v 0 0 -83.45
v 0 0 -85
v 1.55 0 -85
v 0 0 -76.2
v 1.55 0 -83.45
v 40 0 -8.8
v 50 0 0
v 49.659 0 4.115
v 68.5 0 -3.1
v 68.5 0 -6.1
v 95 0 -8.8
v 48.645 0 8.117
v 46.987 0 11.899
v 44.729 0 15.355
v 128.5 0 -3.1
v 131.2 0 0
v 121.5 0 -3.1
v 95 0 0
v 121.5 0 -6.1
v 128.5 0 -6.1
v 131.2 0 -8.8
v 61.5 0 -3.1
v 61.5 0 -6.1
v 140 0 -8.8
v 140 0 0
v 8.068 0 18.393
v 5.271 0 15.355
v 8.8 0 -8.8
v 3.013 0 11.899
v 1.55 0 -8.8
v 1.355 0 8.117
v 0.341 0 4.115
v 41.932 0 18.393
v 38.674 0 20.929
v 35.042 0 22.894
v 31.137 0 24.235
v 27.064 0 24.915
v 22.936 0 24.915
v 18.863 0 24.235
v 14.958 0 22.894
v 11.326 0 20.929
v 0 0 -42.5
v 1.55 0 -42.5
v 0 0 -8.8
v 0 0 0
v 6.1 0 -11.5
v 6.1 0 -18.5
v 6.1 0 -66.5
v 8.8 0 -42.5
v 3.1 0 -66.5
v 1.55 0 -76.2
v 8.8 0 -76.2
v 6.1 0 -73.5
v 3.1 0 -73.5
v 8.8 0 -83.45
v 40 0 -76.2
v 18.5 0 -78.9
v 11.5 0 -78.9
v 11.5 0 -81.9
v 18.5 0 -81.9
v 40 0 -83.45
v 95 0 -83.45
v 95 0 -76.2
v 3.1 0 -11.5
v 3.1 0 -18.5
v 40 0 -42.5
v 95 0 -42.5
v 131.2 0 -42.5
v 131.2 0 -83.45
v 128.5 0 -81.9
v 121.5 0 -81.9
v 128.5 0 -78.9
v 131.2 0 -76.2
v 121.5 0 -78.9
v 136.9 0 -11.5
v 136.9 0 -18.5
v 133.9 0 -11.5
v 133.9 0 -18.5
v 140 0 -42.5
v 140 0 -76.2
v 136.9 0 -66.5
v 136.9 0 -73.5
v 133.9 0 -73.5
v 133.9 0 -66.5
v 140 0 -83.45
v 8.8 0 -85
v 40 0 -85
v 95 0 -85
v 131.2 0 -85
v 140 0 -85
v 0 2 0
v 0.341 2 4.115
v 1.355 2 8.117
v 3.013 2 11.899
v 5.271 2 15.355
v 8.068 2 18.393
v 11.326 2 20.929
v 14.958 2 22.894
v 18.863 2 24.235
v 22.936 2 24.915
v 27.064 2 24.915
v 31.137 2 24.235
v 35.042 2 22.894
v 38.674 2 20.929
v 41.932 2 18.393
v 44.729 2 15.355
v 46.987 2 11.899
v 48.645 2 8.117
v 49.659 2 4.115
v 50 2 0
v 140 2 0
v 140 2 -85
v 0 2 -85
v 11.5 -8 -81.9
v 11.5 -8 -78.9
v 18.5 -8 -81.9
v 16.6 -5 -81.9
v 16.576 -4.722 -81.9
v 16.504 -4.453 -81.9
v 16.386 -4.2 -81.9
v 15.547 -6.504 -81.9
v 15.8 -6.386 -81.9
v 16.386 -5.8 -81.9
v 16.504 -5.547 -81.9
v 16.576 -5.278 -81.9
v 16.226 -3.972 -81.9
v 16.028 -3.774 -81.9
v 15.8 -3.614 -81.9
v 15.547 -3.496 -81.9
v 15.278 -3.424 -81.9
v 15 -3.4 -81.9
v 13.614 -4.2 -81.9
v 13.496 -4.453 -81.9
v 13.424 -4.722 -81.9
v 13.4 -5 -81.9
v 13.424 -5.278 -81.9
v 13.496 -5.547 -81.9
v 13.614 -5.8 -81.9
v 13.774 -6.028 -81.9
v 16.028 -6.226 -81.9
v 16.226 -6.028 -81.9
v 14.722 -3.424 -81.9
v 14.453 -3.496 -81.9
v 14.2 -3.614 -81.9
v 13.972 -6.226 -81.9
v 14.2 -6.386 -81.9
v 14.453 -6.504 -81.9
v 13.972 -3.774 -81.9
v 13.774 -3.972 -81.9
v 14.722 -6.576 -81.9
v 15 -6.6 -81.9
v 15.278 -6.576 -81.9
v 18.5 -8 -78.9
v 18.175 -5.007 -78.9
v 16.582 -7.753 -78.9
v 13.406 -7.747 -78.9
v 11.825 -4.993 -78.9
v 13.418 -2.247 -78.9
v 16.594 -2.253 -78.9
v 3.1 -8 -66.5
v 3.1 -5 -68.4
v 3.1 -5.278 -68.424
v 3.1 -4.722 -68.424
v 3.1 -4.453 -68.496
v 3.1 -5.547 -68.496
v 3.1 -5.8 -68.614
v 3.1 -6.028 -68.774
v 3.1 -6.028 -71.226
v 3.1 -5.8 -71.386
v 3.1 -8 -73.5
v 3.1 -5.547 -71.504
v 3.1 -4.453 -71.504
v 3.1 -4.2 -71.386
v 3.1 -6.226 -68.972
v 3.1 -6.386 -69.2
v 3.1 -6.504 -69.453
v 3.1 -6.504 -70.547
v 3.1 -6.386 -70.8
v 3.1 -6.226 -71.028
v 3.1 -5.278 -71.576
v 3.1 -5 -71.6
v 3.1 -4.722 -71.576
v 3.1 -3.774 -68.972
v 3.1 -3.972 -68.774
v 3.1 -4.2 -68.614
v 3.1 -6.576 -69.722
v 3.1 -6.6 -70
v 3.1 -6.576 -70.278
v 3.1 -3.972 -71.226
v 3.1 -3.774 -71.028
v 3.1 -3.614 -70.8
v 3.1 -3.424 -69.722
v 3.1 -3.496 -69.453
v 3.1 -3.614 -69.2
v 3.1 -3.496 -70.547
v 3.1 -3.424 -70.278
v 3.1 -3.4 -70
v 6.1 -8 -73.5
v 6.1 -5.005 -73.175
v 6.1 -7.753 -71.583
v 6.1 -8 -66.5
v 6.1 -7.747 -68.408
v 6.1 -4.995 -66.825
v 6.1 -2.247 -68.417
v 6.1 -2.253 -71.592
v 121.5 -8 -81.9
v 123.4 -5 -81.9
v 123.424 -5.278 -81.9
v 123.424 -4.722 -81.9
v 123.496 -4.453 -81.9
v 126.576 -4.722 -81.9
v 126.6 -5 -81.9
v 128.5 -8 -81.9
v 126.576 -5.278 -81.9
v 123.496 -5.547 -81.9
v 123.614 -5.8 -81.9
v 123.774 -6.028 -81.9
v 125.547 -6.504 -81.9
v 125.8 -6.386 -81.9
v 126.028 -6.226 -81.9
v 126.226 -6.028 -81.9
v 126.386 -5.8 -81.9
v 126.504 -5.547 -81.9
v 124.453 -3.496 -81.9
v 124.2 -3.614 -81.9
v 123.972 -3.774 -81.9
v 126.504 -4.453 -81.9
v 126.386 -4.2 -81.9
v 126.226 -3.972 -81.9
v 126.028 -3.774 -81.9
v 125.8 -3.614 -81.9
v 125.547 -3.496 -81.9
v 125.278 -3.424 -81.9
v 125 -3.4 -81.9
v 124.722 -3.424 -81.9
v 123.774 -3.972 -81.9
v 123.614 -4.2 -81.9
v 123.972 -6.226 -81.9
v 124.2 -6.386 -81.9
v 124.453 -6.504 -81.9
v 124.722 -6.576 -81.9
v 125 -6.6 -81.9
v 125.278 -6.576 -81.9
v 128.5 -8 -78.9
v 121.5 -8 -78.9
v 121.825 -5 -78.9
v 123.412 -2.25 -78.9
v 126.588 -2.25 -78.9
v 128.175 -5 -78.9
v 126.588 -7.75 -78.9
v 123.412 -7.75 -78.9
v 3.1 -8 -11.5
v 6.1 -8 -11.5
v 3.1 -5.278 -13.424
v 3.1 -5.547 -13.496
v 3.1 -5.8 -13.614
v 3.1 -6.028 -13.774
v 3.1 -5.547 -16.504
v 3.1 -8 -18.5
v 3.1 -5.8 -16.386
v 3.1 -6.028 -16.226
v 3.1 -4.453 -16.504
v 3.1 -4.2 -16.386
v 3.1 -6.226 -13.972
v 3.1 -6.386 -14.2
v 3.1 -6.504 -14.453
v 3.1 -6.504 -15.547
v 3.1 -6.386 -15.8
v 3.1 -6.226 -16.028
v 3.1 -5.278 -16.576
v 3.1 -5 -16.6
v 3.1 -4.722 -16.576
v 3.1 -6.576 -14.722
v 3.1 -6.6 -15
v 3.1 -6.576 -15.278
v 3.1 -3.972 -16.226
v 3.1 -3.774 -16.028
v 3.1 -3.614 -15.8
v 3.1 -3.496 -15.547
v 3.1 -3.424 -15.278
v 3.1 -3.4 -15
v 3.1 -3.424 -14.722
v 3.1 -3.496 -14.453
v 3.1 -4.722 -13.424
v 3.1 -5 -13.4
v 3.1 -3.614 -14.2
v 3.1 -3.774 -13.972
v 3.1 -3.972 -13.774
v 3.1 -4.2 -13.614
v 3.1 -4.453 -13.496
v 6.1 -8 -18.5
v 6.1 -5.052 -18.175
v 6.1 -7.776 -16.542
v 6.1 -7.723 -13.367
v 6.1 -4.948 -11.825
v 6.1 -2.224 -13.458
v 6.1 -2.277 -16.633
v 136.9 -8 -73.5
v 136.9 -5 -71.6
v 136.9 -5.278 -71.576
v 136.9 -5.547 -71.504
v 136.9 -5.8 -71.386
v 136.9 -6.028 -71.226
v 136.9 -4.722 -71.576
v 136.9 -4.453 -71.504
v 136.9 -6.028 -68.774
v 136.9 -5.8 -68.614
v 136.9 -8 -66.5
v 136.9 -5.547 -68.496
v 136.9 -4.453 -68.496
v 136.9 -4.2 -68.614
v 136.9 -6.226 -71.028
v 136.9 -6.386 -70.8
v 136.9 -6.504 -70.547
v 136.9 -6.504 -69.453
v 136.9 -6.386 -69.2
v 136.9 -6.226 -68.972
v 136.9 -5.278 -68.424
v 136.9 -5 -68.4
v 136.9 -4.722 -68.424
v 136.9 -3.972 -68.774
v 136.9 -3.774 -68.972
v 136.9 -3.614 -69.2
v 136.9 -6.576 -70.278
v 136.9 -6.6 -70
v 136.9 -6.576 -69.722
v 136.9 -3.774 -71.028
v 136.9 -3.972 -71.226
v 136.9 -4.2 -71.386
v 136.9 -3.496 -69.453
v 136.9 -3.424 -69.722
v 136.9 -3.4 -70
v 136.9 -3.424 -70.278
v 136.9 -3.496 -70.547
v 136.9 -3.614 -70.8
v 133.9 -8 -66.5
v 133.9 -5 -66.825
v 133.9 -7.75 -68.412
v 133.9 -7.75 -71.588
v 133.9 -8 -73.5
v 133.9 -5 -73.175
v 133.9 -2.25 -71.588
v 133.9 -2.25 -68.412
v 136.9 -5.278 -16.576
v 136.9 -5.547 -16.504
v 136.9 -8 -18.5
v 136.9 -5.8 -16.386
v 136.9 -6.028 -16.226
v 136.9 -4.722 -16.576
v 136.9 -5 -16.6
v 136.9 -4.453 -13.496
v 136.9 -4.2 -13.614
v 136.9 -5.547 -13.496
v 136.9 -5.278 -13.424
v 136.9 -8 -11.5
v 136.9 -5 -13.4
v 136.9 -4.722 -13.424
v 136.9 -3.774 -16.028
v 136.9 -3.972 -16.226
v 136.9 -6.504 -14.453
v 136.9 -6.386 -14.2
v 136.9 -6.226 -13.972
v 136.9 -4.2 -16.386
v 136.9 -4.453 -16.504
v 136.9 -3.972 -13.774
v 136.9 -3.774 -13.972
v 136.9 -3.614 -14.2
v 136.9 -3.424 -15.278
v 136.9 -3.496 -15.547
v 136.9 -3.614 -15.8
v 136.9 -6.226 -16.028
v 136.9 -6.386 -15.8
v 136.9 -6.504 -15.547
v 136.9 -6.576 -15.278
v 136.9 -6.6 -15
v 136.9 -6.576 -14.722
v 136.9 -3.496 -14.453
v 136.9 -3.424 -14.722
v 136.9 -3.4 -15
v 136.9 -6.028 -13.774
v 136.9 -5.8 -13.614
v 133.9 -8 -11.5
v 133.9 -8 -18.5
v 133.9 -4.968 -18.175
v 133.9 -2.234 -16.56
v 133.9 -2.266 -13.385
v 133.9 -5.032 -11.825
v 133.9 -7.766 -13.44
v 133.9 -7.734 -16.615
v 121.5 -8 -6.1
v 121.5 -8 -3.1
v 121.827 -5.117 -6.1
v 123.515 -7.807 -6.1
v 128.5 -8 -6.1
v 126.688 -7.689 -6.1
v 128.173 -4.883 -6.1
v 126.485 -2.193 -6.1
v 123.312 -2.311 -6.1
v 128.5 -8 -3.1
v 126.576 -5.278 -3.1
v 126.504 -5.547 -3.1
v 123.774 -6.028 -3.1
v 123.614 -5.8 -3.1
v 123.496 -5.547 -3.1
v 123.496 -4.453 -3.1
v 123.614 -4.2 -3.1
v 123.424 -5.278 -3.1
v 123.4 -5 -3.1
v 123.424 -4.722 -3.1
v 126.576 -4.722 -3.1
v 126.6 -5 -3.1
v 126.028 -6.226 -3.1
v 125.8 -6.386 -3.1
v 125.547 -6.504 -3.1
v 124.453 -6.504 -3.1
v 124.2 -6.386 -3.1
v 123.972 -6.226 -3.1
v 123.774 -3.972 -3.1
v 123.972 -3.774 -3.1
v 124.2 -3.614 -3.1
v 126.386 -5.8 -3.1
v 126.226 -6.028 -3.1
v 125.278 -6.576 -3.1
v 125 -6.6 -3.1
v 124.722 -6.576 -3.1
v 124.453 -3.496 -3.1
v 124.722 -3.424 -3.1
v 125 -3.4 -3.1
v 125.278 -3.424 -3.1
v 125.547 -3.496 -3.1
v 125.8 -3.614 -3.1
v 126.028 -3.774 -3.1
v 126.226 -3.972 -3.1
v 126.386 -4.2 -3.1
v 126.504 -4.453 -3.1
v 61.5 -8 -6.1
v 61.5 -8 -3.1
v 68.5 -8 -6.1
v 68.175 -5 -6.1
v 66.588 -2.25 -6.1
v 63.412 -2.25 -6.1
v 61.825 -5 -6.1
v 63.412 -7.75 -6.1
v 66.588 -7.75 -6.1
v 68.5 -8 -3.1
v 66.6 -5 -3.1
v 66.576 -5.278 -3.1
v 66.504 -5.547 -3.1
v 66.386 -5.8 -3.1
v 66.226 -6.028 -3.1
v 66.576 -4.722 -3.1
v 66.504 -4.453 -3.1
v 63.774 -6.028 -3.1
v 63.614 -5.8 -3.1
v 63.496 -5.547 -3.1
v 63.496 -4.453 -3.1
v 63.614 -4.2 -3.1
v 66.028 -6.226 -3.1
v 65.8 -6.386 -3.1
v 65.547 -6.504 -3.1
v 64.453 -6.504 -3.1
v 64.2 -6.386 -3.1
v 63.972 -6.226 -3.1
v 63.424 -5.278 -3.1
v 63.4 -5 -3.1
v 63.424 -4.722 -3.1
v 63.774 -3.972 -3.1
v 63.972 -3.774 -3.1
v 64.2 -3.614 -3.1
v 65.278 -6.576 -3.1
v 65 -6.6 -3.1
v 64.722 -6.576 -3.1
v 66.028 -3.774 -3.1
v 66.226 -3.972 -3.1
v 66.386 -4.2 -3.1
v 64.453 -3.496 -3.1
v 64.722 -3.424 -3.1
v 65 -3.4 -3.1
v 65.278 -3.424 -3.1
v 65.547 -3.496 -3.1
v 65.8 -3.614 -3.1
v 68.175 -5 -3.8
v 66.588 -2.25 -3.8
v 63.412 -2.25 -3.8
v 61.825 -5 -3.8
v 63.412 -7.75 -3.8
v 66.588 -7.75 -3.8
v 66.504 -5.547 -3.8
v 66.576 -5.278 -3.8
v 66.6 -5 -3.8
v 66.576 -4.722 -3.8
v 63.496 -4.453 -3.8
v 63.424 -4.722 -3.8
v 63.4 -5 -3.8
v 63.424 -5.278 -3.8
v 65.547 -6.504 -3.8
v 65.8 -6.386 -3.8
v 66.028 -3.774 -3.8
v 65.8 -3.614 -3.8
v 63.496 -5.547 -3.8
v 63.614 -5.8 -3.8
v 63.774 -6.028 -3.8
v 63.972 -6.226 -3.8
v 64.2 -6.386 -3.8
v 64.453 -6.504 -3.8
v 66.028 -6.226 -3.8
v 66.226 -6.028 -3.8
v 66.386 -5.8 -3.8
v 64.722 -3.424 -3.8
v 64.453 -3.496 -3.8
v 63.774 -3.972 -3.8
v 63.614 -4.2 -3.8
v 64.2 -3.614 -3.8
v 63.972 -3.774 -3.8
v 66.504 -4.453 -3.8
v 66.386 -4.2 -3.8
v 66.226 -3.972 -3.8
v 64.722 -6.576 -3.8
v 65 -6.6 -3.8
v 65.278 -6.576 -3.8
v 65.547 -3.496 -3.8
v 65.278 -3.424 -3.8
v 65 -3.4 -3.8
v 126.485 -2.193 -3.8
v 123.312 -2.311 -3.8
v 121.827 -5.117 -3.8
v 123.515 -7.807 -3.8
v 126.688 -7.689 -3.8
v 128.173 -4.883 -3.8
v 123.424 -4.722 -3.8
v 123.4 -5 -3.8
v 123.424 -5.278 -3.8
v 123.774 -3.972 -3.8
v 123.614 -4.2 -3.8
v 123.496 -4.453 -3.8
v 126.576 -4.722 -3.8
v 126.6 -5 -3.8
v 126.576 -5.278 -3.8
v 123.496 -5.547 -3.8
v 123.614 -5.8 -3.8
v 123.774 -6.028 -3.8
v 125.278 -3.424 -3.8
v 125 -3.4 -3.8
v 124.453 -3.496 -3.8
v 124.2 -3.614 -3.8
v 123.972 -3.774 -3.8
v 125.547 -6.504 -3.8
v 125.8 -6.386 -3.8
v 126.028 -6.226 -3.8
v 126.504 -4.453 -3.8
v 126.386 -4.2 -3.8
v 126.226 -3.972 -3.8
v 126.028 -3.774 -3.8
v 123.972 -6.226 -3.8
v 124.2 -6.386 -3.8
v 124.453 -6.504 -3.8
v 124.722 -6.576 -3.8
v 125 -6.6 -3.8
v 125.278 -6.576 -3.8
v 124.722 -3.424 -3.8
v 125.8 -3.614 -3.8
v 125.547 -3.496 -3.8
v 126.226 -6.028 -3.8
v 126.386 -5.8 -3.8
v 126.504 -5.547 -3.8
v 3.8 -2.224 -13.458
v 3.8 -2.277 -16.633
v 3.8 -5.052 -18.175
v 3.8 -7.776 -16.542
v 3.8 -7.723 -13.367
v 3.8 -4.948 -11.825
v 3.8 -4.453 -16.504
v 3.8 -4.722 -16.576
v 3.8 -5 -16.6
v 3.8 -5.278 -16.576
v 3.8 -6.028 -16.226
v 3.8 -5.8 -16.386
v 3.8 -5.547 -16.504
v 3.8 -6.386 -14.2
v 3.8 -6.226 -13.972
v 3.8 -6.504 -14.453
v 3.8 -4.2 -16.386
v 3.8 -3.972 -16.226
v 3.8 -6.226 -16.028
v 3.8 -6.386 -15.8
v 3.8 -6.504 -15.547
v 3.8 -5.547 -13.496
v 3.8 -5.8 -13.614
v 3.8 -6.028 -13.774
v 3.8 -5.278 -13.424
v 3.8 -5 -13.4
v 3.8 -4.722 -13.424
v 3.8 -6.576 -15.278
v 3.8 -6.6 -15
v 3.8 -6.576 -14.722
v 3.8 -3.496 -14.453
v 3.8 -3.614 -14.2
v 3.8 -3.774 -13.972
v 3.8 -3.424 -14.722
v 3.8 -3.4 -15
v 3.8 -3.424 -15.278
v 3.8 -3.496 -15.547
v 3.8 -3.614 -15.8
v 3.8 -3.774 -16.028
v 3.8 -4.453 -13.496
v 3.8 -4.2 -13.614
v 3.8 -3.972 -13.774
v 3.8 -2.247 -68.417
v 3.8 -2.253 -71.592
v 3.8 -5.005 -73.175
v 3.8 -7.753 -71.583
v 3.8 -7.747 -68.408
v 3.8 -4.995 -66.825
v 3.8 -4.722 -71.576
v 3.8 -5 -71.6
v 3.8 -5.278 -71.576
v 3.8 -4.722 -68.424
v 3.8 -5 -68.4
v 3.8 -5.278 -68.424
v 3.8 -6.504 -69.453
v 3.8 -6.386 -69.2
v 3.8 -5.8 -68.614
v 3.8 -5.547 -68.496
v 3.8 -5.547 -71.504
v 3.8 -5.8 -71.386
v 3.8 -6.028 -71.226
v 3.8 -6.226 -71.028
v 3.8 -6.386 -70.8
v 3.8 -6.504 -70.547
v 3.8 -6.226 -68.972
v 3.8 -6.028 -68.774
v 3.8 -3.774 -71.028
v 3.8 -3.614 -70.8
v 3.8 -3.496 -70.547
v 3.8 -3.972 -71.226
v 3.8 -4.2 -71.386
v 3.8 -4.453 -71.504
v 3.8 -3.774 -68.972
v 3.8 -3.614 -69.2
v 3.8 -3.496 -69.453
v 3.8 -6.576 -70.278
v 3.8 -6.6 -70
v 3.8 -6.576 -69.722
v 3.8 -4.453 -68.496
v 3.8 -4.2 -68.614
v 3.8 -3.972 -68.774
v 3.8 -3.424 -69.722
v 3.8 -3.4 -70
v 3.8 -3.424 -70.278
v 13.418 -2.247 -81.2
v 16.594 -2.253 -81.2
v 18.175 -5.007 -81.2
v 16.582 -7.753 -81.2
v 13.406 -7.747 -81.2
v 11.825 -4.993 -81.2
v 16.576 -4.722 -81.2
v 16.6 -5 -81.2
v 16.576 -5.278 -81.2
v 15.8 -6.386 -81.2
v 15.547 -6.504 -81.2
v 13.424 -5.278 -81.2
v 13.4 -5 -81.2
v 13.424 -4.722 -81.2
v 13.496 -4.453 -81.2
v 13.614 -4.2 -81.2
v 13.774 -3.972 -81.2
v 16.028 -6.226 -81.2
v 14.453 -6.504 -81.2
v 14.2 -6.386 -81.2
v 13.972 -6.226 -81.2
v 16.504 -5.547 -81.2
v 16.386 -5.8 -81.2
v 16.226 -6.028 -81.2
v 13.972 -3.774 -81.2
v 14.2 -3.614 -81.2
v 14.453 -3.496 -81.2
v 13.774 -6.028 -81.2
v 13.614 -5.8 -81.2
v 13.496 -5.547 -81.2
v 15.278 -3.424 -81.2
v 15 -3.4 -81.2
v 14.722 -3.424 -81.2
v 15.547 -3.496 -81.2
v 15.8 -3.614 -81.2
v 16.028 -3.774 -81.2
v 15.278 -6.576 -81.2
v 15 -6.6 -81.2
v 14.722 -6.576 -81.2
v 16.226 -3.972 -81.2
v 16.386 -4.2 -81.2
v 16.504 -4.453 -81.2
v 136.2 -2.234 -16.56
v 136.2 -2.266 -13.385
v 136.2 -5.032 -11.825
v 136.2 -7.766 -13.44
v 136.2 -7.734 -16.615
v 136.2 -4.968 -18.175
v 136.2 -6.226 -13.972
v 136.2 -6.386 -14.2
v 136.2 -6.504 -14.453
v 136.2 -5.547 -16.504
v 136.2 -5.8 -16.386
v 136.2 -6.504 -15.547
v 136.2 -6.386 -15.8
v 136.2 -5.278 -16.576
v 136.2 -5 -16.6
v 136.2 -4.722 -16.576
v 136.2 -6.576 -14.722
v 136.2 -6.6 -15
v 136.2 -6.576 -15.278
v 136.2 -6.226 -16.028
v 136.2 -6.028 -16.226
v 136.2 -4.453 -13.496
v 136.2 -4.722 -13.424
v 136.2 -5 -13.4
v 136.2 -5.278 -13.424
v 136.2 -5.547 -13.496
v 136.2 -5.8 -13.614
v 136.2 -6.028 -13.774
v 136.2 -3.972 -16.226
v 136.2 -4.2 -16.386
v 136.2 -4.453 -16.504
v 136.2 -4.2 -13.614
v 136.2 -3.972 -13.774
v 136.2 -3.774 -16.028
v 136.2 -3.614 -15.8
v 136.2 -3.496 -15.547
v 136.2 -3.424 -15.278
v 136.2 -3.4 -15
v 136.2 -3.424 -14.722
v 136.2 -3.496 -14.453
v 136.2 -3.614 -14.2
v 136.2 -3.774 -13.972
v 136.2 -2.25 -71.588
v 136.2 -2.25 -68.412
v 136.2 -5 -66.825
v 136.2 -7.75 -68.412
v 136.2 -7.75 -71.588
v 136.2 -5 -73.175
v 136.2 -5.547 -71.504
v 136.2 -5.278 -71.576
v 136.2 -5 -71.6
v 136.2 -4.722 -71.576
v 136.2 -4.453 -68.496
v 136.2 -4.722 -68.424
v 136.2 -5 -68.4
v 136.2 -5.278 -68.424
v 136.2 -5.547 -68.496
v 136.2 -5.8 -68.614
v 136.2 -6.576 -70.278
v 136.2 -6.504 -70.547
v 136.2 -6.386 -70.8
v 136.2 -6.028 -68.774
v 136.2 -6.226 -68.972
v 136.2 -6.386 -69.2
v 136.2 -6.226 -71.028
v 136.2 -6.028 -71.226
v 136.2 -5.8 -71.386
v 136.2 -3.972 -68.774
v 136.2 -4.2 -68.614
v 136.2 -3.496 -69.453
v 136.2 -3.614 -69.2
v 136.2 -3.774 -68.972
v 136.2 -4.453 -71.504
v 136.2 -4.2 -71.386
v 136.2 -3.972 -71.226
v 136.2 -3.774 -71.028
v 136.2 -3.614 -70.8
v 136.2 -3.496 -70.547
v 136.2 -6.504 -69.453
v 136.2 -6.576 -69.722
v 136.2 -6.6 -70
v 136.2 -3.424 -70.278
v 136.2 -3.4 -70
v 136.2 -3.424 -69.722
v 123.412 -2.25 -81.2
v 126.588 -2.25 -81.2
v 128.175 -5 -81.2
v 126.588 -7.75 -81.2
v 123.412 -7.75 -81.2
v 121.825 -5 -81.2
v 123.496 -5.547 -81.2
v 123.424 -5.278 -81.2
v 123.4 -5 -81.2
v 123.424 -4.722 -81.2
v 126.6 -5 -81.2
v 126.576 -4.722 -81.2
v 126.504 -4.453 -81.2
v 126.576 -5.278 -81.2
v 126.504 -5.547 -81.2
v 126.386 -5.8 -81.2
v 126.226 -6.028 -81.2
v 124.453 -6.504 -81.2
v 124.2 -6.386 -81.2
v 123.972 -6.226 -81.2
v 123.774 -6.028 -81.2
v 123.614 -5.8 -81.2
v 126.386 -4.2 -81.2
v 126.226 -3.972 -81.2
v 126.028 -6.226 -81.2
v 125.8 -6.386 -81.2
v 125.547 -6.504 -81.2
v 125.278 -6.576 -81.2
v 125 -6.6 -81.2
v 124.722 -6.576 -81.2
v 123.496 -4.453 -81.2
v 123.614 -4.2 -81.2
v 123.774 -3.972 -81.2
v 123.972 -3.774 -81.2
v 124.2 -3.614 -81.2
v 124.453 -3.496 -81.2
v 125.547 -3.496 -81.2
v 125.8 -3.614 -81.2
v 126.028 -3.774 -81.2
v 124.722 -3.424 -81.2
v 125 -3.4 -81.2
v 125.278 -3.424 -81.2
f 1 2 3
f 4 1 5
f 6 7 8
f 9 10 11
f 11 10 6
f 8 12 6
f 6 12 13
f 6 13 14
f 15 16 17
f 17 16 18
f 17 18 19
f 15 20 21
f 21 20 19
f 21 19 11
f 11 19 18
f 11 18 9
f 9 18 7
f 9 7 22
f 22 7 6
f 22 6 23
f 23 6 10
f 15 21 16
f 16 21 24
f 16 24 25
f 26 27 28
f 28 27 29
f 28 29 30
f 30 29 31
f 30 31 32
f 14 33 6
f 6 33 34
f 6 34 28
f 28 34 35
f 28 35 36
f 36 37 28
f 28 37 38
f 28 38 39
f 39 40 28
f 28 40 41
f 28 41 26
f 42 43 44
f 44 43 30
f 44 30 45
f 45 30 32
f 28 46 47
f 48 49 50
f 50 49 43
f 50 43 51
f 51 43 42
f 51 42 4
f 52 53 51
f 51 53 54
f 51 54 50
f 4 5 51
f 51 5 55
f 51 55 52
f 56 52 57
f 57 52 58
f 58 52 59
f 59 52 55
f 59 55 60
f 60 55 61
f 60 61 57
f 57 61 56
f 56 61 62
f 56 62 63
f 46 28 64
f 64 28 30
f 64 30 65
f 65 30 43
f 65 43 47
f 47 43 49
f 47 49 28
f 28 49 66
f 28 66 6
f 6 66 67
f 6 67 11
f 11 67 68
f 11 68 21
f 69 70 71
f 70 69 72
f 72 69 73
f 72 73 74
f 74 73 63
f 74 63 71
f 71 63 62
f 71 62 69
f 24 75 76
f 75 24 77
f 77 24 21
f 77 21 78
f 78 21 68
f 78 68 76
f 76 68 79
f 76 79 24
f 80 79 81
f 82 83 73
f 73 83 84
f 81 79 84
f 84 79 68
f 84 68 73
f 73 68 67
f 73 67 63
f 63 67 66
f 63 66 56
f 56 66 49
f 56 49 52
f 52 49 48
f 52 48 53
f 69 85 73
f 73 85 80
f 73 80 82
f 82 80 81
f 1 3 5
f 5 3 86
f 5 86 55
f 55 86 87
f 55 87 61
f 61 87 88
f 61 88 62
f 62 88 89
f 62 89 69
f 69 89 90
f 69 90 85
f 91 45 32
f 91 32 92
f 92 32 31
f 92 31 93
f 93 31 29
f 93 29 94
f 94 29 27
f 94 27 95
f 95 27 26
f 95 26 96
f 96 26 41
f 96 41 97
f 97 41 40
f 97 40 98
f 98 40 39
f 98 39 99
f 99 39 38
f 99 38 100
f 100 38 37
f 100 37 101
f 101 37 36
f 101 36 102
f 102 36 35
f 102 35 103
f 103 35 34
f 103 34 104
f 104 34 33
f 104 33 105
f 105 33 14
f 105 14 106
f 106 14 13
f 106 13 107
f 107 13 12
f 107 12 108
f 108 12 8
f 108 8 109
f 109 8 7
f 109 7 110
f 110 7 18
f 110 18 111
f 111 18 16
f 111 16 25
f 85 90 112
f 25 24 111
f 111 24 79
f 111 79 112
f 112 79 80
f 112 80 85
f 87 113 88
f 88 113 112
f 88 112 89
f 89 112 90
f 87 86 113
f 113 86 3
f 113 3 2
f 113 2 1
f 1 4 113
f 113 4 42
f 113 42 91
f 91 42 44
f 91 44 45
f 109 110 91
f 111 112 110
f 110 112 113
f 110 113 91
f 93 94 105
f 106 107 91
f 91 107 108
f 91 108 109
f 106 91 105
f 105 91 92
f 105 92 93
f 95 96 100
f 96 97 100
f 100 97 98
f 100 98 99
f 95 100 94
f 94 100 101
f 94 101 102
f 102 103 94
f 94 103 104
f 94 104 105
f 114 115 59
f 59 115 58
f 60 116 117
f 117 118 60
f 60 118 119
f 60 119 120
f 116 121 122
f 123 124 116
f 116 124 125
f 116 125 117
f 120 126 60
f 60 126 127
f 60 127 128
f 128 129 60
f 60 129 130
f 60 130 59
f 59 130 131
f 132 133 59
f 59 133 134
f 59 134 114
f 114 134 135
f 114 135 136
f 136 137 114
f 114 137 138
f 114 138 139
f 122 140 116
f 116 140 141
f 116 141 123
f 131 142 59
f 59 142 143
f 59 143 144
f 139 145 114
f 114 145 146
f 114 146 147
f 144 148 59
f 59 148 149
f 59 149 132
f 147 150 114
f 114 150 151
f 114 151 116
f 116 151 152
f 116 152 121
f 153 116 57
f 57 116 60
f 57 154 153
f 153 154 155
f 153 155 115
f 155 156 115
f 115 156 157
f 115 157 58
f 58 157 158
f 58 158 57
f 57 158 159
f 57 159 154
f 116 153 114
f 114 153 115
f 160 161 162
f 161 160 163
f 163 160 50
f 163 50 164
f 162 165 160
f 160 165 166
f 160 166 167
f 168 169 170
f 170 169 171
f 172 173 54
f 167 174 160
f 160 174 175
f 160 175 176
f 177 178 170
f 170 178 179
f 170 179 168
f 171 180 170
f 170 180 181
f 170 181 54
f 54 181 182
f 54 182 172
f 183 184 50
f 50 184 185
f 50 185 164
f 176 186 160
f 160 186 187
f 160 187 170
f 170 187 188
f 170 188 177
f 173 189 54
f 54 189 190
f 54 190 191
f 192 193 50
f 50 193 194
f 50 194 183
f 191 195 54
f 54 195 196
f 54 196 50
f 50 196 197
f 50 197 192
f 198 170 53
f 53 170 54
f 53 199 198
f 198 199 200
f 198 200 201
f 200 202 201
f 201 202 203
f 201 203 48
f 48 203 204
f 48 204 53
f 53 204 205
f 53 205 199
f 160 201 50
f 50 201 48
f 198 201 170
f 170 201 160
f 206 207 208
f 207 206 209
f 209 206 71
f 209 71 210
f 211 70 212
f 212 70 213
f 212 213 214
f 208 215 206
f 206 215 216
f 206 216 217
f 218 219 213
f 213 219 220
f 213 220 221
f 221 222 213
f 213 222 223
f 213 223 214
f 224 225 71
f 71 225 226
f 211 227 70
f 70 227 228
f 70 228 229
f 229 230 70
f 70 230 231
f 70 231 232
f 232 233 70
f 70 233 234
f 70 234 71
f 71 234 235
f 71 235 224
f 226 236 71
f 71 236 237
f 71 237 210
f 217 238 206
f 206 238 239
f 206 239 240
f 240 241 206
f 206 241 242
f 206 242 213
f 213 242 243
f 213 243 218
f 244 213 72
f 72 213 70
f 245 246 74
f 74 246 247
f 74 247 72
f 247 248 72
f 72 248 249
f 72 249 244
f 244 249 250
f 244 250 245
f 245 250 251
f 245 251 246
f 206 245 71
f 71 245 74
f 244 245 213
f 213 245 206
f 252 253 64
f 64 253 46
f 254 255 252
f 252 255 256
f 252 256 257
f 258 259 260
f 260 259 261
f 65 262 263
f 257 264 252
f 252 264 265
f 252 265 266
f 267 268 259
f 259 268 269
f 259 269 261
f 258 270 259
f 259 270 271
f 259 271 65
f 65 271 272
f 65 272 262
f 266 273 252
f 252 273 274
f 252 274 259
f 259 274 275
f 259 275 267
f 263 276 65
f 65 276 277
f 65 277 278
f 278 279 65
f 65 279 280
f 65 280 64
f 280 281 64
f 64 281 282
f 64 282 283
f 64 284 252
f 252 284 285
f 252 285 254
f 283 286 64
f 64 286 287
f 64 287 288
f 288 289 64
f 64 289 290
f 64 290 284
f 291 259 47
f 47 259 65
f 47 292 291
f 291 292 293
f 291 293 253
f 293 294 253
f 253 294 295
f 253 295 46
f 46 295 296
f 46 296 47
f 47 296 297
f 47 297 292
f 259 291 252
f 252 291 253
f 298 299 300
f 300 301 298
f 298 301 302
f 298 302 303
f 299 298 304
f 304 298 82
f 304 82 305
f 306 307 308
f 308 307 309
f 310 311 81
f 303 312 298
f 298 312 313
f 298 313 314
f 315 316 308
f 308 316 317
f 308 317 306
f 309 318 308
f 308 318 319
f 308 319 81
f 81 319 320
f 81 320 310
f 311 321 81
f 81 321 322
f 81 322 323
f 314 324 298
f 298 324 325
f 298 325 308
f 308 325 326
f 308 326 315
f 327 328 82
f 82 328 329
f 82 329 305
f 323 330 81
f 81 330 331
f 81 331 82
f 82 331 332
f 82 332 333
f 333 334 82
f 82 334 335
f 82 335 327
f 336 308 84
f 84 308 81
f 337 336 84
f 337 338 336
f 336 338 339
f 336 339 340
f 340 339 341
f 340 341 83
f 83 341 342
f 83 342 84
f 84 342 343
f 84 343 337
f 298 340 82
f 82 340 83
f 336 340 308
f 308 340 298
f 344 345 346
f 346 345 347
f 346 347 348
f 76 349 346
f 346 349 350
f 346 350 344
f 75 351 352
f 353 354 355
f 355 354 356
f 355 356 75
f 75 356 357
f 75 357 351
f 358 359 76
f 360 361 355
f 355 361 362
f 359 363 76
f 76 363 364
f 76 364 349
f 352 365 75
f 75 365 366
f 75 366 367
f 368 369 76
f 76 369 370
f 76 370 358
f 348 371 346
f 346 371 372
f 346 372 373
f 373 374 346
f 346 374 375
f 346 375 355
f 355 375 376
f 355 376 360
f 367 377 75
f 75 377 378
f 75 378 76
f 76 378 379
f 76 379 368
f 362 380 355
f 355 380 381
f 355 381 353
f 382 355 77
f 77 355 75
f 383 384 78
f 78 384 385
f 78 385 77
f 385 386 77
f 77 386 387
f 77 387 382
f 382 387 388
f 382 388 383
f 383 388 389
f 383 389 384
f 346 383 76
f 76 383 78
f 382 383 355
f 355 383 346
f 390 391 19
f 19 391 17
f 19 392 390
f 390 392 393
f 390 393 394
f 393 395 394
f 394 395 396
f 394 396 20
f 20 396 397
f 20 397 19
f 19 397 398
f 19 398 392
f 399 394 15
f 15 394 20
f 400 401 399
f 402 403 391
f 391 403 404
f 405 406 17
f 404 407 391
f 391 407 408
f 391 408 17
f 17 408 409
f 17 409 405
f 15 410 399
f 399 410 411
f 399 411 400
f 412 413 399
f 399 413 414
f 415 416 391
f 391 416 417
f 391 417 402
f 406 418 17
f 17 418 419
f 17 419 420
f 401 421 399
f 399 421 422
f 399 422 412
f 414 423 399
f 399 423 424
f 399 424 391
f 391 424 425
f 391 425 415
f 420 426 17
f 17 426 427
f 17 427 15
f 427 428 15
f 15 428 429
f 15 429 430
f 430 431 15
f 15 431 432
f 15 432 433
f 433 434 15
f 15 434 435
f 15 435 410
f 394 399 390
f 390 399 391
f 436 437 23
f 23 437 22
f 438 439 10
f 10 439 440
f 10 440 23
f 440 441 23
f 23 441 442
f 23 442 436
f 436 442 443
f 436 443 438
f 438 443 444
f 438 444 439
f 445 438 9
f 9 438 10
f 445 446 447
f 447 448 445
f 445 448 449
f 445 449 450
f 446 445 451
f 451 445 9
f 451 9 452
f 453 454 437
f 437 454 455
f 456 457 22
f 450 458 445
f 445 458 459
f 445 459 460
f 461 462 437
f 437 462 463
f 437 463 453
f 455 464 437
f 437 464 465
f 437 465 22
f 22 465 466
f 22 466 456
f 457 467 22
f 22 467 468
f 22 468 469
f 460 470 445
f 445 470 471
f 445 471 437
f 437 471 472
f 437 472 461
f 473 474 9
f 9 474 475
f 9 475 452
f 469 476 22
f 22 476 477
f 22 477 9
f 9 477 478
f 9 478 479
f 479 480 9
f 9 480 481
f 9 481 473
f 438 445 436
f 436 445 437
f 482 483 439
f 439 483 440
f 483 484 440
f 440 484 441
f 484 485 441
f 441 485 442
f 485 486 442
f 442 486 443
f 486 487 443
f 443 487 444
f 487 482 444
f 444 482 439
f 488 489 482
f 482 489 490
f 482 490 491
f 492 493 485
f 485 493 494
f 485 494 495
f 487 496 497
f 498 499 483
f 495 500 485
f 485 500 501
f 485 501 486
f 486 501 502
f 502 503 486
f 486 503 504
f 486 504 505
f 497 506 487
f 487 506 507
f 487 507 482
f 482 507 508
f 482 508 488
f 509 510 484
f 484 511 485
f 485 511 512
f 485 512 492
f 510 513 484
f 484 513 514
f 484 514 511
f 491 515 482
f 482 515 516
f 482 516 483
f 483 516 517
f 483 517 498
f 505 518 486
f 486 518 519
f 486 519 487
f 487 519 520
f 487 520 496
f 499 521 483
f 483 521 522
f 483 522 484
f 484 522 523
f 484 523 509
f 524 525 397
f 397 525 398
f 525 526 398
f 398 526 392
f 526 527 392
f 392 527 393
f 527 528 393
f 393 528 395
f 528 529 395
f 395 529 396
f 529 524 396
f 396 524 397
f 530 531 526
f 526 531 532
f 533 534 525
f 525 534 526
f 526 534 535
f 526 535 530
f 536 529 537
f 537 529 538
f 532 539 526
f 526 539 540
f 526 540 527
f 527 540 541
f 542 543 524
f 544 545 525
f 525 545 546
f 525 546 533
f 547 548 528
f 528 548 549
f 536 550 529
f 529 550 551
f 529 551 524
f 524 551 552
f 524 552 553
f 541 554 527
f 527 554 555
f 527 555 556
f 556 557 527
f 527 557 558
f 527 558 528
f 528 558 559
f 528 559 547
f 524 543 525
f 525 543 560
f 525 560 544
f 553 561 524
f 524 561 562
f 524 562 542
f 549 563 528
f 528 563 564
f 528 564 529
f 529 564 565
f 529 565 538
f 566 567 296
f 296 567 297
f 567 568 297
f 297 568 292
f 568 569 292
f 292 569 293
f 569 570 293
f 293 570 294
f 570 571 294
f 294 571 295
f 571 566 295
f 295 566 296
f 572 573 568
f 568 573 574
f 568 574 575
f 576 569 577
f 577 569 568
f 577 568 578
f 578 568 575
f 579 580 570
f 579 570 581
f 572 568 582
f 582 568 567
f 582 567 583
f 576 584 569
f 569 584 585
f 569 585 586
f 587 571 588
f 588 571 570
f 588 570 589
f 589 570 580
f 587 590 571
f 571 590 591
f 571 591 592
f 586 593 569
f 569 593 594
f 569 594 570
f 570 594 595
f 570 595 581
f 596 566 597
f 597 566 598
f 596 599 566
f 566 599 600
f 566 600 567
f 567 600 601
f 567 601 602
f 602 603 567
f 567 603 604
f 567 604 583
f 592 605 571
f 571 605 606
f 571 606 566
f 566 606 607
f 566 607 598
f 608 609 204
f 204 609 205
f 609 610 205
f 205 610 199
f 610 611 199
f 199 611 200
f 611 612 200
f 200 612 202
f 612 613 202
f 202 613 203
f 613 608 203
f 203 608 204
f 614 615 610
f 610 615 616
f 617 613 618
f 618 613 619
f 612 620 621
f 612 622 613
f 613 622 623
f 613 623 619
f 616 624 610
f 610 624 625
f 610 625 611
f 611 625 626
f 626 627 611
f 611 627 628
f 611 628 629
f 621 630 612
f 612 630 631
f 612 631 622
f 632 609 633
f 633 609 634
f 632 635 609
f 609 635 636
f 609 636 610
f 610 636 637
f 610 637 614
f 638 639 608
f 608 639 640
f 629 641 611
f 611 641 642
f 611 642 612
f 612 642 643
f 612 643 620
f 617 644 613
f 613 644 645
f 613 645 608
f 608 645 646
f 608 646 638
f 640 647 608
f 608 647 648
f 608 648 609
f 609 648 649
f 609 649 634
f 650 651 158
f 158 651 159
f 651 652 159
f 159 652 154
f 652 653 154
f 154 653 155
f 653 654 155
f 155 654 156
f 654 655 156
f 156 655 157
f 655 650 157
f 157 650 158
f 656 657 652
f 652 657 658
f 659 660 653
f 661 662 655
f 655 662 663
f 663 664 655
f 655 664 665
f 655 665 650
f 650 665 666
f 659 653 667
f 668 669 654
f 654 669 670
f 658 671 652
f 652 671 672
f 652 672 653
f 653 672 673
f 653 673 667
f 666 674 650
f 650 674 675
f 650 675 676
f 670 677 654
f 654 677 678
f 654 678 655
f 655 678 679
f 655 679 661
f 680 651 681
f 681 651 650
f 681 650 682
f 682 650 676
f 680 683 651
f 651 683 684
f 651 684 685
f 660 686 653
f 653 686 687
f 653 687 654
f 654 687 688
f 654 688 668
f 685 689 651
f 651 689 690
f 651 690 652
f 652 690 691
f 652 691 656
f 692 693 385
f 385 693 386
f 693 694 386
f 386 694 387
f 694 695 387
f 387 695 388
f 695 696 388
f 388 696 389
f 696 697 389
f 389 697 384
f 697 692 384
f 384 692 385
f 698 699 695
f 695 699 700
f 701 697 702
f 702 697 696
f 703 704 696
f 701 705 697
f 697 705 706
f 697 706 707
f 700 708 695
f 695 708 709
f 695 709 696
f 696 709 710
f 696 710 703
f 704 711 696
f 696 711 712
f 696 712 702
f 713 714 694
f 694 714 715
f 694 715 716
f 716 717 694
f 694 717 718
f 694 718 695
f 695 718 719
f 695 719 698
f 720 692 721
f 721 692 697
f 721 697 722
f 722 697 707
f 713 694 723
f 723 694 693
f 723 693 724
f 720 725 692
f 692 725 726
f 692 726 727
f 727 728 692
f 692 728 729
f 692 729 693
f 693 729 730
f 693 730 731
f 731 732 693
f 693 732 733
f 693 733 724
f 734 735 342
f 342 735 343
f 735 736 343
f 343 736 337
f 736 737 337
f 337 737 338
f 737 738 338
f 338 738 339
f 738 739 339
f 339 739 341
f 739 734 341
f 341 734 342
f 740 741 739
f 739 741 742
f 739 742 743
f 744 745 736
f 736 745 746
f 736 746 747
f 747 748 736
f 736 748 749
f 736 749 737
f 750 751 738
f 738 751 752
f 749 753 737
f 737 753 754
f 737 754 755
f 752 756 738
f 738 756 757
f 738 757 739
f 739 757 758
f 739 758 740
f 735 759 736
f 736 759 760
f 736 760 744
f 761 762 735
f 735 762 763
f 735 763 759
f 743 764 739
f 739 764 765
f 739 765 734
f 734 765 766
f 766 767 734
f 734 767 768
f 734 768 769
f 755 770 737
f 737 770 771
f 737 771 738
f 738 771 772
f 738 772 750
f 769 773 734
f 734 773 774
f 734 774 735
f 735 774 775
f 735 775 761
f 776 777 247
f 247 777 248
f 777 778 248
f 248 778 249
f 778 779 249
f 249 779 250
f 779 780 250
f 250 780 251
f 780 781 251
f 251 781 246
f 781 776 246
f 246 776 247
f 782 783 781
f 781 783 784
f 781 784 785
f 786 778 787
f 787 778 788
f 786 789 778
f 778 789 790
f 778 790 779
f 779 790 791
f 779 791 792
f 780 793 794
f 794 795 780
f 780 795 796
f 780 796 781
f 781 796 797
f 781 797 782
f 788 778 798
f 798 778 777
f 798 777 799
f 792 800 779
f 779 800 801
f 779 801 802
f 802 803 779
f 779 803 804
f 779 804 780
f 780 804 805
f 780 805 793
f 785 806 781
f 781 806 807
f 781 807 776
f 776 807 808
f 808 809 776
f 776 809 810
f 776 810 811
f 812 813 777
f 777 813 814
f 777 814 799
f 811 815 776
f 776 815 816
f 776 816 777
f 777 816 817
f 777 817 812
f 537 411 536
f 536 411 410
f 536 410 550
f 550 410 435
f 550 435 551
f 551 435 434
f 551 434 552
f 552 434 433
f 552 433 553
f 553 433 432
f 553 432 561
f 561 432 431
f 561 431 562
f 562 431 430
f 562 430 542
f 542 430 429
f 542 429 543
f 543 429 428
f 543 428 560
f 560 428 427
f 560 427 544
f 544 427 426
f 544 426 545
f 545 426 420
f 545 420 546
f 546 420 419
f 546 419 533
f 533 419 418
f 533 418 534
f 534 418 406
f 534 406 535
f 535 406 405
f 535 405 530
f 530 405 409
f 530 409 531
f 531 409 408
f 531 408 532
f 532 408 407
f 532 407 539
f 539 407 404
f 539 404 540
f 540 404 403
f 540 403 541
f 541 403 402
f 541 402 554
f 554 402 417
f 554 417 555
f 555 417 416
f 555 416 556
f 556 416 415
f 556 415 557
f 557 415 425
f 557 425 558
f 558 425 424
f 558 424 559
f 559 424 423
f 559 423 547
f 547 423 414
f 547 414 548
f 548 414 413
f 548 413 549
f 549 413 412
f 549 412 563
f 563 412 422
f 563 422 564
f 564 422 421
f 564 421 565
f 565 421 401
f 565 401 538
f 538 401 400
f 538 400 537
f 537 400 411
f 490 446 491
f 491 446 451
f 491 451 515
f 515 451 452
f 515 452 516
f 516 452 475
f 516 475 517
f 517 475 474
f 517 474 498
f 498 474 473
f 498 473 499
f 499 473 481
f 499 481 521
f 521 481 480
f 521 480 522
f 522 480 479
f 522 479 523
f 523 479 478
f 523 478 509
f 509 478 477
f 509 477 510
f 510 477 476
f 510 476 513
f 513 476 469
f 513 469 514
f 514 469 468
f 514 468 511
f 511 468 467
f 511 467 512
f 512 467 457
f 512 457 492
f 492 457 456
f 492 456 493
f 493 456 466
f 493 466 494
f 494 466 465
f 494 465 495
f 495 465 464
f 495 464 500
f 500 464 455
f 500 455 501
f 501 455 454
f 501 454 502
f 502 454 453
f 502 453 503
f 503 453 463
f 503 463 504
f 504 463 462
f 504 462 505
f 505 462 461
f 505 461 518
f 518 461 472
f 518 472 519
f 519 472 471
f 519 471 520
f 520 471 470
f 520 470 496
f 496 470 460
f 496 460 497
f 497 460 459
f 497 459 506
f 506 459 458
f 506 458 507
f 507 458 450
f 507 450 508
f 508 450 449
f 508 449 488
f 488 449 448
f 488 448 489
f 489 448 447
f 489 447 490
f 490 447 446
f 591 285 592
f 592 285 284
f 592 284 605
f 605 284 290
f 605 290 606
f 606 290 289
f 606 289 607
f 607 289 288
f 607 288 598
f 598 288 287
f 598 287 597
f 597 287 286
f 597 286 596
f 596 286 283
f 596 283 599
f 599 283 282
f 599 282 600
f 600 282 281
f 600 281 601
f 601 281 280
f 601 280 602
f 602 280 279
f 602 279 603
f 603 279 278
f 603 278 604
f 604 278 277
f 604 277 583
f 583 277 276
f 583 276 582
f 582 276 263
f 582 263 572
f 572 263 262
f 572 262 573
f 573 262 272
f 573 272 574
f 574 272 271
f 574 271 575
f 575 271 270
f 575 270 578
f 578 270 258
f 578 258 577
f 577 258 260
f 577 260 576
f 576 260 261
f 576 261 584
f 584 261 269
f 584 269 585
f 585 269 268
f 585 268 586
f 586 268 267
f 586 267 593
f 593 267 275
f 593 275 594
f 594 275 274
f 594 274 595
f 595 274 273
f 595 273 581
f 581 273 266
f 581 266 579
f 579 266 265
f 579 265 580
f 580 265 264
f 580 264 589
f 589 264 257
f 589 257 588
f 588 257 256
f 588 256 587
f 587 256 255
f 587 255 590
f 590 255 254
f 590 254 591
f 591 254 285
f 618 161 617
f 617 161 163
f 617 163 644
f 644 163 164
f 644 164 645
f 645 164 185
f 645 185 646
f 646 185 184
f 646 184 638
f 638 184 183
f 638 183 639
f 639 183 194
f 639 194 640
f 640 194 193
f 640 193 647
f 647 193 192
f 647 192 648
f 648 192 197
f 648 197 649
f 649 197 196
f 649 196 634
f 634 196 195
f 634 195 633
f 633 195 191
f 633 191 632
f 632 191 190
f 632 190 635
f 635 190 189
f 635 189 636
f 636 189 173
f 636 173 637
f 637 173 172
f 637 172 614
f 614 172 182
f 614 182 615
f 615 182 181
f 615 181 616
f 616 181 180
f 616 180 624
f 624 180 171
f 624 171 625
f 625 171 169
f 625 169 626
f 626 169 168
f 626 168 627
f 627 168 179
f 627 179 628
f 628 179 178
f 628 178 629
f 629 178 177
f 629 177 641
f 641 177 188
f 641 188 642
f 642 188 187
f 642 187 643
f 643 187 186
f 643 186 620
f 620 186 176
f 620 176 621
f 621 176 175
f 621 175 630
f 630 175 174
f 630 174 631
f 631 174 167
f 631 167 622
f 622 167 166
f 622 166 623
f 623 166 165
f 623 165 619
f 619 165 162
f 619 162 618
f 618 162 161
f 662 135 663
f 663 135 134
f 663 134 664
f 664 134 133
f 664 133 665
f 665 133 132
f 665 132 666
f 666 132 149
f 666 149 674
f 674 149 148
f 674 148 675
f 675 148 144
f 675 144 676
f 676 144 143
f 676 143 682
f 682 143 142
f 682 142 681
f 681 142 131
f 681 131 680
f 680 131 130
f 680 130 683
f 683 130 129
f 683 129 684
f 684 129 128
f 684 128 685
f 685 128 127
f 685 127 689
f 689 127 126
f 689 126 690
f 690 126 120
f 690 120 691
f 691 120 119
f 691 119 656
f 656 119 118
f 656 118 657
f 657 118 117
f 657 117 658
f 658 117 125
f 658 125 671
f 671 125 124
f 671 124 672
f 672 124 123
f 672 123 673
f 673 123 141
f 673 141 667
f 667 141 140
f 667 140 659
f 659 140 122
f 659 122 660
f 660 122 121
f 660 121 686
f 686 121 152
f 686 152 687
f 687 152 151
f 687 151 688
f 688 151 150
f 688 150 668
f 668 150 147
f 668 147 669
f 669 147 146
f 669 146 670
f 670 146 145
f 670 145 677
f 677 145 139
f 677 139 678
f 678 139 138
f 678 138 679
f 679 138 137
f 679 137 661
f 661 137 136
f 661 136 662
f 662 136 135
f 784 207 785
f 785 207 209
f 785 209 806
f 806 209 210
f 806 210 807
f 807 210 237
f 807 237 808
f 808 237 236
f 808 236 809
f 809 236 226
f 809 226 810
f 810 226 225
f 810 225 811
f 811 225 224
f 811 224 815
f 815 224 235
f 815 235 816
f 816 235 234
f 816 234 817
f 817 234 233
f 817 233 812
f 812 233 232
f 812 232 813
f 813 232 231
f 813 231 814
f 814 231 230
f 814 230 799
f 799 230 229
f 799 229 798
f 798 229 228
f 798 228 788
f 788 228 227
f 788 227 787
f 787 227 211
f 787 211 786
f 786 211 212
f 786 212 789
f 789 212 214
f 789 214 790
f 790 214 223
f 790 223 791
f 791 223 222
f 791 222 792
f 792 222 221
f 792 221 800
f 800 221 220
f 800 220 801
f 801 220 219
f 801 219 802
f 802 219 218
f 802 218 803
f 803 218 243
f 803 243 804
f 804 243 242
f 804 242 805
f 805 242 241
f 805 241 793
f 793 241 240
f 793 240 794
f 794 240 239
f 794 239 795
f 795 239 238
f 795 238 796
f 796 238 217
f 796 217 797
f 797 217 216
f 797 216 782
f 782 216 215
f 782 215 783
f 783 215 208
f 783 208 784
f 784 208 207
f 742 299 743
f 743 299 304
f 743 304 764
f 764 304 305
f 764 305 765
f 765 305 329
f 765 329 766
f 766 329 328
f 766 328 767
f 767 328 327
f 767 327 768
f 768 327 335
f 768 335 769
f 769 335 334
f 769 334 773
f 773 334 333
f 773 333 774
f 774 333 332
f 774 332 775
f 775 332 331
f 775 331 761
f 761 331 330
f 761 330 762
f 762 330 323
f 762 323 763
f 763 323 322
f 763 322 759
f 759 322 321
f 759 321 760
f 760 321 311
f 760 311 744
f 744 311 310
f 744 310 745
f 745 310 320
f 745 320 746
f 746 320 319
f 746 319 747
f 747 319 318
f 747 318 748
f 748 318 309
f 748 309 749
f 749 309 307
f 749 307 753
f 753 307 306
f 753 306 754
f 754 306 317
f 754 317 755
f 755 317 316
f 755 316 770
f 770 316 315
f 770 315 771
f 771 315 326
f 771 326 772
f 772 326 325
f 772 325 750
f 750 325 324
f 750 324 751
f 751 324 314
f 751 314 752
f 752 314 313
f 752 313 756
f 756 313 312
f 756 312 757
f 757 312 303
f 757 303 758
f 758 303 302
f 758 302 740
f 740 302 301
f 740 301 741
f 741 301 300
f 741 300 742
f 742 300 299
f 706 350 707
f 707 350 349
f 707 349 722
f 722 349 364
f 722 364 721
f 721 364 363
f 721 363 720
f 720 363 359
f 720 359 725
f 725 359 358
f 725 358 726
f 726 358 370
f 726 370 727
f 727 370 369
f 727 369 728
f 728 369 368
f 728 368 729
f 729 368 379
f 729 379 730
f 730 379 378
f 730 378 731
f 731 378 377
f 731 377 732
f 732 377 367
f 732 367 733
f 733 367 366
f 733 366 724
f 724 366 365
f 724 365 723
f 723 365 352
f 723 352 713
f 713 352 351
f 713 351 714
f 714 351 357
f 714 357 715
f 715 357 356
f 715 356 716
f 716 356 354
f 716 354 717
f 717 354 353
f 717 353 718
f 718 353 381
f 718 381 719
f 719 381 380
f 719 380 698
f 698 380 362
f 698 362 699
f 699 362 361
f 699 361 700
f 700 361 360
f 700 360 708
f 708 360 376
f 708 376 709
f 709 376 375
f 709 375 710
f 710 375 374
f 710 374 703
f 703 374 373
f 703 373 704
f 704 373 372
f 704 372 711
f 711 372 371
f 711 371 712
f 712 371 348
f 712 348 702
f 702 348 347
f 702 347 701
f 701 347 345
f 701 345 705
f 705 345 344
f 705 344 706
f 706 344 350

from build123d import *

# Parameters (mm, degrees)
Y_KSEKLIK_EKSTR_ZYON1_DEPTH = 2
IZIM2_W                     = 7
IZIM2_H                     = 3
IZIM2_W_2                   = 3
IZIM2_H_2                   = 7
Y_KSEKLIK_EKSTR_ZYON2_DEPTH = 8
KES_EKSTR_ZYON1_DEPTH       = 2.3
KES_EKSTR_ZYON2_DEPTH       = 2.3
KES_EKSTR_ZYON3_DEPTH       = 2.3
KES_EKSTR_ZYON4_DEPTH       = 2.3
KES_EKSTR_ZYON5_DEPTH       = 2.3
KES_EKSTR_ZYON7_DEPTH       = 2.3
KES_EKSTR_ZYON9_DEPTH       = 2.3
KES_EKSTR_ZYON10_DEPTH      = 2.3
IZIM15_R                    = 1.6
KES_EKSTR_ZYON11_DEPTH      = 5
IZIM16_R                    = 1.6
KES_EKSTR_ZYON12_DEPTH      = 5
IZIM17_R                    = 1.6
KES_EKSTR_ZYON13_DEPTH      = 5
IZIM18_R                    = 1.6
KES_EKSTR_ZYON14_DEPTH      = 5
IZIM19_R                    = 1.6
KES_EKSTR_ZYON15_DEPTH      = 5
KES_EKSTR_ZYON16_START      = -5
IZIM20_R                    = 1.6
KES_EKSTR_ZYON16_DEPTH      = 5
KES_EKSTR_ZYON17_START      = -5
IZIM21_R                    = 1.6
KES_EKSTR_ZYON17_DEPTH      = 5
KES_EKSTR_ZYON18_START      = -5
IZIM22_R                    = 1.6
KES_EKSTR_ZYON18_DEPTH      = 5


with BuildPart() as part:
    # Çizim1 → Yükseklik-Ekstrüzyon1 (new body)
    with BuildSketch(Plane(origin=(0, 0, 0), x_dir=(1, 0, 0), z_dir=(0, 1, 0))):
        with BuildLine():
            Line((50, 0), (140, 0))
            Line((140, 0), (140, 85))
            Line((140, 85), (0, 85))
            Line((0, 85), (0, 0))
            ThreePointArc((0, 0), (25, -25), (50, 0))
        make_face()
    extrude(amount=Y_KSEKLIK_EKSTR_ZYON1_DEPTH)

    # Çizim2 → Yükseklik-Ekstrüzyon2 (add)
    with BuildSketch(Plane.XZ):
        with Locations((15, -80.4)):
            Rectangle(IZIM2_W, IZIM2_H)
        with Locations((125, -80.4)):
            Rectangle(IZIM2_W, IZIM2_H)
        with Locations((4.6, -70)):
            Rectangle(IZIM2_W_2, IZIM2_H_2)
        with Locations((4.6, -15)):
            Rectangle(IZIM2_W_2, IZIM2_H_2)
        with Locations((135.4, -70)):
            Rectangle(IZIM2_W_2, IZIM2_H_2)
        with Locations((135.4, -15)):
            Rectangle(IZIM2_W_2, IZIM2_H_2)
        with Locations((125, -4.6)):
            Rectangle(IZIM2_W, IZIM2_H)
        with Locations((65, -4.6)):
            Rectangle(IZIM2_W, IZIM2_H)
    extrude(amount=Y_KSEKLIK_EKSTR_ZYON2_DEPTH)

    # Çizim3 → Kes-Ekstrüzyon1 (cut)
    with BuildSketch(Plane(origin=(0, 0, -6.1), x_dir=(-1, 0, 0), z_dir=(0, 0, -1))):
        Polygon((-68.175426481, -5), (-66.58771324, -7.75), (-63.41228676, -7.75), (-61.824573519, -5), (-63.41228676, -2.25), (-66.58771324, -2.25), align=None)
    extrude(amount=-KES_EKSTR_ZYON1_DEPTH, mode=Mode.SUBTRACT)

    # Çizim4 → Kes-Ekstrüzyon2 (cut)
    with BuildSketch(Plane(origin=(0, 0, -6.1), x_dir=(-1, 0, 0), z_dir=(0, 0, -1))):
        Polygon((-126.484912109, -2.193156691), (-128.173253665, -4.882549954), (-126.688341556, -7.689393263), (-123.515087891, -7.806843309), (-121.826746335, -5.117450046), (-123.311658444, -2.310606737), align=None)
    extrude(amount=-KES_EKSTR_ZYON2_DEPTH, mode=Mode.SUBTRACT)

    # Çizim5 → Kes-Ekstrüzyon3 (cut)
    with BuildSketch(Plane(origin=(6.1, 0, 0), x_dir=(0, 0, -1), z_dir=(1, 0, 0))):
        Polygon((13.457838364, -2.224199067), (11.825005058, -4.947650687), (13.367166694, -7.72345162), (16.542161636, -7.775800933), (18.174994942, -5.052349313), (16.632833306, -2.27654838), align=None)
    extrude(amount=-KES_EKSTR_ZYON3_DEPTH, mode=Mode.SUBTRACT)

    # Çizim6 → Kes-Ekstrüzyon4 (cut)
    with BuildSketch(Plane(origin=(6.1, 0, 0), x_dir=(0, 0, -1), z_dir=(1, 0, 0))):
        Polygon((68.416764228, -2.247419788), (66.824577724, -4.994832293), (68.407813496, -7.747412505), (71.583235772, -7.752580212), (73.175422276, -5.005167707), (71.592186504, -2.252587495), align=None)
    extrude(amount=-KES_EKSTR_ZYON4_DEPTH, mode=Mode.SUBTRACT)

    # Çizim7 → Kes-Ekstrüzyon5 (cut)
    with BuildSketch(Plane.XY.offset(-78.9)):
        Polygon((13.418242397, -2.246570099), (11.824580957, -4.993127316), (13.40633856, -7.746557217), (16.581757603, -7.753429901), (18.175419043, -5.006872684), (16.59366144, -2.253442783), align=None)
    extrude(amount=-KES_EKSTR_ZYON5_DEPTH, mode=Mode.SUBTRACT)

    # Çizim9 → Kes-Ekstrüzyon7 (cut)
    with BuildSketch(Plane.ZY.offset(-133.9)):
        Polygon((-16.559885261, -2.234120157), (-18.175264838, -4.967960341), (-16.615379578, -7.733840184), (-13.440114739, -7.765879843), (-11.824735162, -5.032039659), (-13.384620422, -2.266159816), align=None)
    extrude(amount=-KES_EKSTR_ZYON7_DEPTH, mode=Mode.SUBTRACT)

    # Çizim11 → Kes-Ekstrüzyon9 (cut)
    with BuildSketch(Plane.ZY.offset(-133.9)):
        Polygon((-71.58771324, -2.25), (-73.175426481, -5), (-71.58771324, -7.75), (-68.41228676, -7.75), (-66.824573519, -5), (-68.41228676, -2.25), align=None)
    extrude(amount=-KES_EKSTR_ZYON9_DEPTH, mode=Mode.SUBTRACT)

    # Çizim12 → Kes-Ekstrüzyon10 (cut)
    with BuildSketch(Plane.XY.offset(-78.9)):
        Polygon((123.41228676, -2.25), (121.824573519, -5), (123.41228676, -7.75), (126.58771324, -7.75), (128.175426481, -5), (126.58771324, -2.25), align=None)
    extrude(amount=-KES_EKSTR_ZYON10_DEPTH, mode=Mode.SUBTRACT)

    # Çizim15 → Kes-Ekstrüzyon11 (cut)
    with BuildSketch(Plane.XY.offset(-3.1)):
        with Locations((125, -5)):
            Circle(IZIM15_R)
    extrude(amount=-KES_EKSTR_ZYON11_DEPTH, mode=Mode.SUBTRACT)

    # Çizim16 → Kes-Ekstrüzyon12 (cut)
    with BuildSketch(Plane.XY.offset(-3.1)):
        with Locations((65, -5)):
            Circle(IZIM16_R)
    extrude(amount=-KES_EKSTR_ZYON12_DEPTH, mode=Mode.SUBTRACT)

    # Çizim17 → Kes-Ekstrüzyon13 (cut)
    with BuildSketch(Plane.ZY.offset(-3.1)):
        with Locations((-15, -5)):
            Circle(IZIM17_R)
    extrude(amount=-KES_EKSTR_ZYON13_DEPTH, mode=Mode.SUBTRACT)

    # Çizim18 → Kes-Ekstrüzyon14 (cut)
    with BuildSketch(Plane.ZY.offset(-3.1)):
        with Locations((-70, -5)):
            Circle(IZIM18_R)
    extrude(amount=-KES_EKSTR_ZYON14_DEPTH, mode=Mode.SUBTRACT)

    # Çizim19 → Kes-Ekstrüzyon15 (cut)
    with BuildSketch(Plane(origin=(0, 0, -81.9), x_dir=(-1, 0, 0), z_dir=(0, 0, -1))):
        with Locations((-15, -5)):
            Circle(IZIM19_R)
    extrude(amount=-KES_EKSTR_ZYON15_DEPTH, mode=Mode.SUBTRACT)

    # Çizim20 → Kes-Ekstrüzyon16 (cut)
    with BuildSketch(Plane(origin=(0, 0, -81.9), x_dir=(-1, 0, 0), z_dir=(0, 0, -1)).offset(KES_EKSTR_ZYON16_START)):
        with Locations(Location((-125, -5, 0), (0, 0, 180))):
            Circle(IZIM20_R)
    extrude(amount=KES_EKSTR_ZYON16_DEPTH, mode=Mode.SUBTRACT)

    # Çizim21 → Kes-Ekstrüzyon17 (cut)
    with BuildSketch(Plane(origin=(136.9, 0, 0), x_dir=(0, 0, -1), z_dir=(1, 0, 0)).offset(KES_EKSTR_ZYON17_START)):
        with Locations(Location((70, -5, 0), (0, 0, 180))):
            Circle(IZIM21_R)
    extrude(amount=KES_EKSTR_ZYON17_DEPTH, mode=Mode.SUBTRACT)

    # Çizim22 → Kes-Ekstrüzyon18 (cut)
    with BuildSketch(Plane(origin=(136.9, 0, 0), x_dir=(0, 0, -1), z_dir=(1, 0, 0)).offset(KES_EKSTR_ZYON18_START)):
        with Locations(Location((15, -5, 0), (0, 0, 180))):
            Circle(IZIM22_R)
    extrude(amount=KES_EKSTR_ZYON18_DEPTH, mode=Mode.SUBTRACT)


solid = part.part
